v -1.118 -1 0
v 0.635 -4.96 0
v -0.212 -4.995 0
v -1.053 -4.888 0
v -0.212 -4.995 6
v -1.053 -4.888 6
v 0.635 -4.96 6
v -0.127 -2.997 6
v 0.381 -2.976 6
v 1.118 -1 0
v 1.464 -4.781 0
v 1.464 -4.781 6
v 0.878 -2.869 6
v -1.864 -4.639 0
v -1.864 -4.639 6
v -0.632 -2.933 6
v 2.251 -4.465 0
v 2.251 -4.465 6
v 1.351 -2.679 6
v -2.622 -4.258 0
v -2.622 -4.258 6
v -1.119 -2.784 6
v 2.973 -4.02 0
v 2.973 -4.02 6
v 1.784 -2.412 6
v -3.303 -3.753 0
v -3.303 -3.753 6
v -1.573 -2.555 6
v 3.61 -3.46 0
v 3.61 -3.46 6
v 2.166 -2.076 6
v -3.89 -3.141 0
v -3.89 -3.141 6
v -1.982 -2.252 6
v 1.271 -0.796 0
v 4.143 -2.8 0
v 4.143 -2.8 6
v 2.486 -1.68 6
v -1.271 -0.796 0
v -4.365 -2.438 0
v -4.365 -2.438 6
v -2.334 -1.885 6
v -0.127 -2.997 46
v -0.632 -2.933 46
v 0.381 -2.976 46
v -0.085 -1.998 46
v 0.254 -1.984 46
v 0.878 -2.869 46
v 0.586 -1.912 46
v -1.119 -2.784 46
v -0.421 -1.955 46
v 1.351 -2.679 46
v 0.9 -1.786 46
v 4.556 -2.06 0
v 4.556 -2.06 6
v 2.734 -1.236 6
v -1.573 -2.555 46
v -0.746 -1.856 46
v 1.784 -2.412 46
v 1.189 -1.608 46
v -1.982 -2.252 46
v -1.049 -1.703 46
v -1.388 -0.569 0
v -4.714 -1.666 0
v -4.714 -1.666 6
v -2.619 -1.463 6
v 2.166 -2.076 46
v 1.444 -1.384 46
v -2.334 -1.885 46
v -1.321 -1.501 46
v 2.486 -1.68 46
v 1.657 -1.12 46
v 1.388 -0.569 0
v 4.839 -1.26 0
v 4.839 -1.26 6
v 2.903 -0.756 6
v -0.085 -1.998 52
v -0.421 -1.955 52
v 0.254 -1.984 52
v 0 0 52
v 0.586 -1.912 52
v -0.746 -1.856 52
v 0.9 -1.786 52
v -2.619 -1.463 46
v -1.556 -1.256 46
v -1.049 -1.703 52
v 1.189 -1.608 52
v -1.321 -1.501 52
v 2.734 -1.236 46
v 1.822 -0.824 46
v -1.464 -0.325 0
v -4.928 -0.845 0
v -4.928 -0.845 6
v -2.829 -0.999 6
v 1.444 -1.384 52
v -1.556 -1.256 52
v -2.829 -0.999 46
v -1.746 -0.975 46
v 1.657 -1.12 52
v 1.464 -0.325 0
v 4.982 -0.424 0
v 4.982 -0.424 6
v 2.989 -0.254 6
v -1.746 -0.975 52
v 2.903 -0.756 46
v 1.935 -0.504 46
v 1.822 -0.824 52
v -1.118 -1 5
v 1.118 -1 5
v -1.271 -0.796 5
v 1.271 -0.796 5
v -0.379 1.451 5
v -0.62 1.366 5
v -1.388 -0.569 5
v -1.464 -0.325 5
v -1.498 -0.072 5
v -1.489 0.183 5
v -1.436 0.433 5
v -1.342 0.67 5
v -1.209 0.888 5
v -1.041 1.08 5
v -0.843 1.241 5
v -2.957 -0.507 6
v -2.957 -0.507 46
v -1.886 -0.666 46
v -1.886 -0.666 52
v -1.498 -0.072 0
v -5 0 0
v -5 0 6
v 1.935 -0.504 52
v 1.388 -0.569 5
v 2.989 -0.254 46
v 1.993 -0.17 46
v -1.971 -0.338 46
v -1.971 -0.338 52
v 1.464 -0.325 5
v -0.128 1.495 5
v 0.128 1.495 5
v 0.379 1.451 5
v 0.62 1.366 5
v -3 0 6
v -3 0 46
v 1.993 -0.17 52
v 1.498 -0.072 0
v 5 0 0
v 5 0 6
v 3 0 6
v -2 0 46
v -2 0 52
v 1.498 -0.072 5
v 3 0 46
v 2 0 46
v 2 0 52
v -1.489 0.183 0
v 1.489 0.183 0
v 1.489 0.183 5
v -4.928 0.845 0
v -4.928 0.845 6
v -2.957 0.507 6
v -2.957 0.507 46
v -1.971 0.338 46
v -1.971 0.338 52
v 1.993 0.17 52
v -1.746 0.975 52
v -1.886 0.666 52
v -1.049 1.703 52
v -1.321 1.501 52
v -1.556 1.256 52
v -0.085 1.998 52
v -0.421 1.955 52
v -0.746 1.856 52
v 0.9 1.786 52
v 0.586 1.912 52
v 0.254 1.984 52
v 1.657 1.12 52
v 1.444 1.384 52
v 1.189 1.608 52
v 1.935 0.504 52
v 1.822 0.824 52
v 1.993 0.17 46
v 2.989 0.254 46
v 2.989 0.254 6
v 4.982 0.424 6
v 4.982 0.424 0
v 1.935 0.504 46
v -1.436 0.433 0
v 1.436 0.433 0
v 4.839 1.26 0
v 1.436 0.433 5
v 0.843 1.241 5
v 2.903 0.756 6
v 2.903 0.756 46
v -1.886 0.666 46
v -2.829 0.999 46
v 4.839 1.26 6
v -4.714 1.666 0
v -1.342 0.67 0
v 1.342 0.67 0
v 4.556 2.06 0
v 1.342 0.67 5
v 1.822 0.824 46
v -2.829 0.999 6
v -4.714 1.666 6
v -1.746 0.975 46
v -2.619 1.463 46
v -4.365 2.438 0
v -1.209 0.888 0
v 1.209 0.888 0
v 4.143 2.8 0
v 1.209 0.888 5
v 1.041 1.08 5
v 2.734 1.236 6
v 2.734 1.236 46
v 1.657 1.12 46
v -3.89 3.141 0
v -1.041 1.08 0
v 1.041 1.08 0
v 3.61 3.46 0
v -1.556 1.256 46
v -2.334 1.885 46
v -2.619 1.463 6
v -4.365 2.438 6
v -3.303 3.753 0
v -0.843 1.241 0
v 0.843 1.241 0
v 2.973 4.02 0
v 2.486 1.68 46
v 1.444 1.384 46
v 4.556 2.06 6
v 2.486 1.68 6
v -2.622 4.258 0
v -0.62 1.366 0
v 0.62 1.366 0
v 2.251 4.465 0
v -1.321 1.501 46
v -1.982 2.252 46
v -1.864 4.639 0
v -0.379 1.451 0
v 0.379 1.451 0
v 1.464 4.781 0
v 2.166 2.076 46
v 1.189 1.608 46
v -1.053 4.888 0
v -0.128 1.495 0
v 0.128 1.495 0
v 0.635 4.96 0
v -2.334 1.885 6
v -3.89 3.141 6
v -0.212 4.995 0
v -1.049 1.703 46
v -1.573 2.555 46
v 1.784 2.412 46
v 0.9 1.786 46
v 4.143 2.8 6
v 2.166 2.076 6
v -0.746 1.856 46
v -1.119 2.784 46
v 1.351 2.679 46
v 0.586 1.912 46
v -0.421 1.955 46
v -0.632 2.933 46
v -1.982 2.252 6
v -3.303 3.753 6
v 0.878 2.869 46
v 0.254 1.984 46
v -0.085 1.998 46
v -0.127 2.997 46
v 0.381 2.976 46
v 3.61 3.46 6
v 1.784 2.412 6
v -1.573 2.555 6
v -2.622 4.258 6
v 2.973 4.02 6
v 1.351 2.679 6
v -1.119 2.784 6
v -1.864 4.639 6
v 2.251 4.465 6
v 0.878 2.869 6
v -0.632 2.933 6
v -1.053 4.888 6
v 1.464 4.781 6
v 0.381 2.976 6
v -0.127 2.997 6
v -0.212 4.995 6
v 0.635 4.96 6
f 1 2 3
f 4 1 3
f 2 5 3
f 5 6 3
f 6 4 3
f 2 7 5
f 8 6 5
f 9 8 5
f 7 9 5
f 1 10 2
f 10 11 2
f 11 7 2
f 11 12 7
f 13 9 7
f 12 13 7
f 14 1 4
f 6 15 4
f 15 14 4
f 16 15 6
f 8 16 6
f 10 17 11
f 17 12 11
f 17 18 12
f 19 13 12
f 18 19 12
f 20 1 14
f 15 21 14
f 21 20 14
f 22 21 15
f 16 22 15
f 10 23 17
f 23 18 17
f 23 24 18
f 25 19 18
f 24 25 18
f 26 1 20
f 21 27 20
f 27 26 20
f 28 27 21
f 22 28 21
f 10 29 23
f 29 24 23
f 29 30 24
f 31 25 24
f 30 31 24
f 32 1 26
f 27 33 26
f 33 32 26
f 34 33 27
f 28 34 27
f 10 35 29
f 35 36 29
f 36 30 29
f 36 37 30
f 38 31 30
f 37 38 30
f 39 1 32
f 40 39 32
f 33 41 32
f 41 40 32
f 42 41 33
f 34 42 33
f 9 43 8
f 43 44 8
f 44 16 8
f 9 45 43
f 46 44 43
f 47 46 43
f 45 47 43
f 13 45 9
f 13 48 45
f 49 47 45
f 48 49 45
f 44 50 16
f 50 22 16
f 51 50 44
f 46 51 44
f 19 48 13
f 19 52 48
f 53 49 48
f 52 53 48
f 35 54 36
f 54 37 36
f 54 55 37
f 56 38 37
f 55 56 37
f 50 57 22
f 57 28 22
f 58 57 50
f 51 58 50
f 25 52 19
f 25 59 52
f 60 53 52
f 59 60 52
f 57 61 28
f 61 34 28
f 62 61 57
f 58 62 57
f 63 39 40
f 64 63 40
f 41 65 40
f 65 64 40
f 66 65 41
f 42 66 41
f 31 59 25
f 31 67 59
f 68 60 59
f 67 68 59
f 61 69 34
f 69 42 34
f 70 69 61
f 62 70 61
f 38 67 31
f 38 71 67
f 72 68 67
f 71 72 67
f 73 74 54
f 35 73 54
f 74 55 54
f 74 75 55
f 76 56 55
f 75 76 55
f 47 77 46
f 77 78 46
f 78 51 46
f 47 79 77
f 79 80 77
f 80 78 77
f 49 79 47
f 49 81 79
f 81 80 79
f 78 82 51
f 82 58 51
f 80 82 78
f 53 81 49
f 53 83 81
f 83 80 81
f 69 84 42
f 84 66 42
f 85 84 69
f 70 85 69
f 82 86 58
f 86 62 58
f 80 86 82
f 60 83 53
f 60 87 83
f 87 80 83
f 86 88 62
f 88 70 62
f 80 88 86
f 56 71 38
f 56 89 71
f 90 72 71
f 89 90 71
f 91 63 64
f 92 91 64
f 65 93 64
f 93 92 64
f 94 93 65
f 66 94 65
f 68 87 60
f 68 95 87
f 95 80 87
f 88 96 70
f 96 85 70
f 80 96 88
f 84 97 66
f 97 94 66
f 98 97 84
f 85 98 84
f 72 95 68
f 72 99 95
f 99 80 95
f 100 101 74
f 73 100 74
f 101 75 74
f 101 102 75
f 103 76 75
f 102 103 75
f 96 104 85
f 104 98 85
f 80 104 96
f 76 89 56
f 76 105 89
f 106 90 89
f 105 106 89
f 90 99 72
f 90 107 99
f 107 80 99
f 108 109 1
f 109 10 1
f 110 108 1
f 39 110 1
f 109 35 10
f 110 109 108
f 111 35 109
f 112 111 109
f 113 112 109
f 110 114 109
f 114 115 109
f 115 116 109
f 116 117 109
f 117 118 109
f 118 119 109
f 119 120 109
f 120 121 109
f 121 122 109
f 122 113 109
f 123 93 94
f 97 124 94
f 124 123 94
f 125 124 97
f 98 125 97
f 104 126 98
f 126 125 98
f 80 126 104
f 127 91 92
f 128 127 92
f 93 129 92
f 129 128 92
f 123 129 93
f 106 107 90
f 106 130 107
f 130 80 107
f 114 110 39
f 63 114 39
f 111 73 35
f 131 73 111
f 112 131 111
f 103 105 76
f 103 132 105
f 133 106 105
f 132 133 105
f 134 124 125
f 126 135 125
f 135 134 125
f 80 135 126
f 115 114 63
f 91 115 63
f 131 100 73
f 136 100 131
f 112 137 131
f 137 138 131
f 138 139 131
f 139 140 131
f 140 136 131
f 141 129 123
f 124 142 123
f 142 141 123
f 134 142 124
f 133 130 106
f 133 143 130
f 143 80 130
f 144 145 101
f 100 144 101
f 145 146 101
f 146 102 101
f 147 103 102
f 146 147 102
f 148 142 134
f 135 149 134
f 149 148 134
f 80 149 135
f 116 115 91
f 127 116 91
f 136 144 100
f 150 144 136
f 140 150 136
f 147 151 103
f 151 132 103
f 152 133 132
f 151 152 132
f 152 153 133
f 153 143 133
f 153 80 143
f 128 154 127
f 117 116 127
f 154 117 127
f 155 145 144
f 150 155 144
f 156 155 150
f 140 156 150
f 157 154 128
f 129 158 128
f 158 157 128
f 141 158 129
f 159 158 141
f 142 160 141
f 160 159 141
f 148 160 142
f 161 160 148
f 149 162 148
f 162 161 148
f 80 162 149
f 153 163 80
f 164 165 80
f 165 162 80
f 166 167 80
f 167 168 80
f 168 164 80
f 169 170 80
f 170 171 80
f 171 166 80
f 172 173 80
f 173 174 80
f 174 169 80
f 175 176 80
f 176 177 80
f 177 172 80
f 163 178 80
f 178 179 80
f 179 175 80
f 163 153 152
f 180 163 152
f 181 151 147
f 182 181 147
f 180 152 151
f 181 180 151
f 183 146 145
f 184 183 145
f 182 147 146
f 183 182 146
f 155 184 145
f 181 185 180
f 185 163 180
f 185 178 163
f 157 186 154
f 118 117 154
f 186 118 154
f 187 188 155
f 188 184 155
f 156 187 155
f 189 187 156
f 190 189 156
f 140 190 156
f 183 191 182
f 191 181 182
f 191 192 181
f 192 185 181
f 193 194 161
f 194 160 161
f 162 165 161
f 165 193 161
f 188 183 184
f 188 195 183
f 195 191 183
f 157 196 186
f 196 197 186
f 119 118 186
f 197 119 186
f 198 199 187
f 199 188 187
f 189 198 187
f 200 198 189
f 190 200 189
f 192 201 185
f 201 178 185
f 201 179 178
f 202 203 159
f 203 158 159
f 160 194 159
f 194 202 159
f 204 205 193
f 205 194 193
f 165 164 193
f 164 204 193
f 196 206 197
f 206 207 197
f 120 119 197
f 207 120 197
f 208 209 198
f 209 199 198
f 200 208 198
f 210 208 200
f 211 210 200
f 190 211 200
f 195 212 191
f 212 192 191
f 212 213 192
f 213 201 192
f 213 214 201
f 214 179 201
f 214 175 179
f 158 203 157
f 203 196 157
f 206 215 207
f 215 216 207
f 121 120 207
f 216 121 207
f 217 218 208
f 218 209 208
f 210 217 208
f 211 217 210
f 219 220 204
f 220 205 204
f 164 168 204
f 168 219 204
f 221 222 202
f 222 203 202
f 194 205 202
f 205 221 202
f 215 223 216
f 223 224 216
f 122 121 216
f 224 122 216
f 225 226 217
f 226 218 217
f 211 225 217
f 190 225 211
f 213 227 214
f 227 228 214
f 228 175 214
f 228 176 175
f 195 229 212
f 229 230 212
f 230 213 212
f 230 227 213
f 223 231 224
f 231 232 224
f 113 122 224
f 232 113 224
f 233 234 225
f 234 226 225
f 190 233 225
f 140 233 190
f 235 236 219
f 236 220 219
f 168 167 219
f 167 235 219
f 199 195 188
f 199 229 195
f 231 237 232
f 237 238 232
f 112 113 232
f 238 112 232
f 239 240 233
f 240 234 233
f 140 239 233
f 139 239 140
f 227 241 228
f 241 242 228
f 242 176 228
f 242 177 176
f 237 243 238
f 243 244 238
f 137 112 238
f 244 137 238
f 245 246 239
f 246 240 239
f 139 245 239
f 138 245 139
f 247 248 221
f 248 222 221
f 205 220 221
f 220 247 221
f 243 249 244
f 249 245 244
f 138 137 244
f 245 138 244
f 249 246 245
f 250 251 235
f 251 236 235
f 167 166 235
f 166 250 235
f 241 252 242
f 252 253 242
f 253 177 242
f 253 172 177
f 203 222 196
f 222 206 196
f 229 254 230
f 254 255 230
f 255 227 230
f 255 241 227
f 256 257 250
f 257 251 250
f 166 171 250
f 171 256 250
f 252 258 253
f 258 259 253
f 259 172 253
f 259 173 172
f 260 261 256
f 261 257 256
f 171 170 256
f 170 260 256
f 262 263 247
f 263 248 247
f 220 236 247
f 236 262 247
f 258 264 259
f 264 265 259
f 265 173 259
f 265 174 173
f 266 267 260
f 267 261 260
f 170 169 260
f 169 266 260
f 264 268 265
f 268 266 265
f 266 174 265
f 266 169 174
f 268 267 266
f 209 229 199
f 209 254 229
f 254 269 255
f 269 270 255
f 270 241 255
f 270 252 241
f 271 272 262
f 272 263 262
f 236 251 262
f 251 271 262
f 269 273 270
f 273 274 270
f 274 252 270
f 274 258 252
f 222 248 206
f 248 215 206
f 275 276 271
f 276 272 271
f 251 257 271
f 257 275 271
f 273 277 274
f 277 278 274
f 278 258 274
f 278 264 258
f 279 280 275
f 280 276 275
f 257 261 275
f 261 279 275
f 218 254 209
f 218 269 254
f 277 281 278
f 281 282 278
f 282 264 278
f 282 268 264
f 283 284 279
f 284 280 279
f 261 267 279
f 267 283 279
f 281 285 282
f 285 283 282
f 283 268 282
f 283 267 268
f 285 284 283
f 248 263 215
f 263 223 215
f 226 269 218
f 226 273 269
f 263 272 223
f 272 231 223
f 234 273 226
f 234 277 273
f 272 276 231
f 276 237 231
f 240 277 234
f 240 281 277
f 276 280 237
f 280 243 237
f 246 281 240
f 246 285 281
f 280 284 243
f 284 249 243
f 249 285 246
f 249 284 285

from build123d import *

# Parameters (mm, degrees)
CROQUIS1_R              = 5
SALIENTE_EXTRUIR1_DEPTH = 6
CORTAR_EXTRUIR1_DEPTH   = 5
CROQUIS3_R              = 3
SALIENTE_EXTRUIR2_DEPTH = 40
CROQUIS4_R              = 2
SALIENTE_EXTRUIR3_DEPTH = 6


with BuildPart() as part:
    # Croquis1 → Saliente-Extruir1 (new body)
    with BuildSketch(Plane.XY):
        Circle(CROQUIS1_R)
    extrude(amount=SALIENTE_EXTRUIR1_DEPTH)

    # Croquis2 → Cortar-Extruir1 (cut)
    with BuildSketch(Plane(origin=(0, 0, 0), x_dir=(-1, 0, 0), z_dir=(0, 0, -1))):
        with BuildLine():
            Line((-1.118033989, -1), (0, -1))
            Line((0, -1), (0.606924942, -1))
            Line((0.606924942, -1), (1.118033989, -1))
            ThreePointArc((1.118033989, -1), (0, 1.5), (-1.118033989, -1))
        make_face()
    extrude(amount=-CORTAR_EXTRUIR1_DEPTH, mode=Mode.SUBTRACT)

    # Croquis3 → Saliente-Extruir2 (add)
    with BuildSketch(Plane.XY.offset(6)):
        Circle(CROQUIS3_R)
    extrude(amount=SALIENTE_EXTRUIR2_DEPTH)

    # Croquis4 → Saliente-Extruir3 (add)
    with BuildSketch(Plane.XY.offset(46)):
        Circle(CROQUIS4_R)
    extrude(amount=SALIENTE_EXTRUIR3_DEPTH)


solid = part.part
